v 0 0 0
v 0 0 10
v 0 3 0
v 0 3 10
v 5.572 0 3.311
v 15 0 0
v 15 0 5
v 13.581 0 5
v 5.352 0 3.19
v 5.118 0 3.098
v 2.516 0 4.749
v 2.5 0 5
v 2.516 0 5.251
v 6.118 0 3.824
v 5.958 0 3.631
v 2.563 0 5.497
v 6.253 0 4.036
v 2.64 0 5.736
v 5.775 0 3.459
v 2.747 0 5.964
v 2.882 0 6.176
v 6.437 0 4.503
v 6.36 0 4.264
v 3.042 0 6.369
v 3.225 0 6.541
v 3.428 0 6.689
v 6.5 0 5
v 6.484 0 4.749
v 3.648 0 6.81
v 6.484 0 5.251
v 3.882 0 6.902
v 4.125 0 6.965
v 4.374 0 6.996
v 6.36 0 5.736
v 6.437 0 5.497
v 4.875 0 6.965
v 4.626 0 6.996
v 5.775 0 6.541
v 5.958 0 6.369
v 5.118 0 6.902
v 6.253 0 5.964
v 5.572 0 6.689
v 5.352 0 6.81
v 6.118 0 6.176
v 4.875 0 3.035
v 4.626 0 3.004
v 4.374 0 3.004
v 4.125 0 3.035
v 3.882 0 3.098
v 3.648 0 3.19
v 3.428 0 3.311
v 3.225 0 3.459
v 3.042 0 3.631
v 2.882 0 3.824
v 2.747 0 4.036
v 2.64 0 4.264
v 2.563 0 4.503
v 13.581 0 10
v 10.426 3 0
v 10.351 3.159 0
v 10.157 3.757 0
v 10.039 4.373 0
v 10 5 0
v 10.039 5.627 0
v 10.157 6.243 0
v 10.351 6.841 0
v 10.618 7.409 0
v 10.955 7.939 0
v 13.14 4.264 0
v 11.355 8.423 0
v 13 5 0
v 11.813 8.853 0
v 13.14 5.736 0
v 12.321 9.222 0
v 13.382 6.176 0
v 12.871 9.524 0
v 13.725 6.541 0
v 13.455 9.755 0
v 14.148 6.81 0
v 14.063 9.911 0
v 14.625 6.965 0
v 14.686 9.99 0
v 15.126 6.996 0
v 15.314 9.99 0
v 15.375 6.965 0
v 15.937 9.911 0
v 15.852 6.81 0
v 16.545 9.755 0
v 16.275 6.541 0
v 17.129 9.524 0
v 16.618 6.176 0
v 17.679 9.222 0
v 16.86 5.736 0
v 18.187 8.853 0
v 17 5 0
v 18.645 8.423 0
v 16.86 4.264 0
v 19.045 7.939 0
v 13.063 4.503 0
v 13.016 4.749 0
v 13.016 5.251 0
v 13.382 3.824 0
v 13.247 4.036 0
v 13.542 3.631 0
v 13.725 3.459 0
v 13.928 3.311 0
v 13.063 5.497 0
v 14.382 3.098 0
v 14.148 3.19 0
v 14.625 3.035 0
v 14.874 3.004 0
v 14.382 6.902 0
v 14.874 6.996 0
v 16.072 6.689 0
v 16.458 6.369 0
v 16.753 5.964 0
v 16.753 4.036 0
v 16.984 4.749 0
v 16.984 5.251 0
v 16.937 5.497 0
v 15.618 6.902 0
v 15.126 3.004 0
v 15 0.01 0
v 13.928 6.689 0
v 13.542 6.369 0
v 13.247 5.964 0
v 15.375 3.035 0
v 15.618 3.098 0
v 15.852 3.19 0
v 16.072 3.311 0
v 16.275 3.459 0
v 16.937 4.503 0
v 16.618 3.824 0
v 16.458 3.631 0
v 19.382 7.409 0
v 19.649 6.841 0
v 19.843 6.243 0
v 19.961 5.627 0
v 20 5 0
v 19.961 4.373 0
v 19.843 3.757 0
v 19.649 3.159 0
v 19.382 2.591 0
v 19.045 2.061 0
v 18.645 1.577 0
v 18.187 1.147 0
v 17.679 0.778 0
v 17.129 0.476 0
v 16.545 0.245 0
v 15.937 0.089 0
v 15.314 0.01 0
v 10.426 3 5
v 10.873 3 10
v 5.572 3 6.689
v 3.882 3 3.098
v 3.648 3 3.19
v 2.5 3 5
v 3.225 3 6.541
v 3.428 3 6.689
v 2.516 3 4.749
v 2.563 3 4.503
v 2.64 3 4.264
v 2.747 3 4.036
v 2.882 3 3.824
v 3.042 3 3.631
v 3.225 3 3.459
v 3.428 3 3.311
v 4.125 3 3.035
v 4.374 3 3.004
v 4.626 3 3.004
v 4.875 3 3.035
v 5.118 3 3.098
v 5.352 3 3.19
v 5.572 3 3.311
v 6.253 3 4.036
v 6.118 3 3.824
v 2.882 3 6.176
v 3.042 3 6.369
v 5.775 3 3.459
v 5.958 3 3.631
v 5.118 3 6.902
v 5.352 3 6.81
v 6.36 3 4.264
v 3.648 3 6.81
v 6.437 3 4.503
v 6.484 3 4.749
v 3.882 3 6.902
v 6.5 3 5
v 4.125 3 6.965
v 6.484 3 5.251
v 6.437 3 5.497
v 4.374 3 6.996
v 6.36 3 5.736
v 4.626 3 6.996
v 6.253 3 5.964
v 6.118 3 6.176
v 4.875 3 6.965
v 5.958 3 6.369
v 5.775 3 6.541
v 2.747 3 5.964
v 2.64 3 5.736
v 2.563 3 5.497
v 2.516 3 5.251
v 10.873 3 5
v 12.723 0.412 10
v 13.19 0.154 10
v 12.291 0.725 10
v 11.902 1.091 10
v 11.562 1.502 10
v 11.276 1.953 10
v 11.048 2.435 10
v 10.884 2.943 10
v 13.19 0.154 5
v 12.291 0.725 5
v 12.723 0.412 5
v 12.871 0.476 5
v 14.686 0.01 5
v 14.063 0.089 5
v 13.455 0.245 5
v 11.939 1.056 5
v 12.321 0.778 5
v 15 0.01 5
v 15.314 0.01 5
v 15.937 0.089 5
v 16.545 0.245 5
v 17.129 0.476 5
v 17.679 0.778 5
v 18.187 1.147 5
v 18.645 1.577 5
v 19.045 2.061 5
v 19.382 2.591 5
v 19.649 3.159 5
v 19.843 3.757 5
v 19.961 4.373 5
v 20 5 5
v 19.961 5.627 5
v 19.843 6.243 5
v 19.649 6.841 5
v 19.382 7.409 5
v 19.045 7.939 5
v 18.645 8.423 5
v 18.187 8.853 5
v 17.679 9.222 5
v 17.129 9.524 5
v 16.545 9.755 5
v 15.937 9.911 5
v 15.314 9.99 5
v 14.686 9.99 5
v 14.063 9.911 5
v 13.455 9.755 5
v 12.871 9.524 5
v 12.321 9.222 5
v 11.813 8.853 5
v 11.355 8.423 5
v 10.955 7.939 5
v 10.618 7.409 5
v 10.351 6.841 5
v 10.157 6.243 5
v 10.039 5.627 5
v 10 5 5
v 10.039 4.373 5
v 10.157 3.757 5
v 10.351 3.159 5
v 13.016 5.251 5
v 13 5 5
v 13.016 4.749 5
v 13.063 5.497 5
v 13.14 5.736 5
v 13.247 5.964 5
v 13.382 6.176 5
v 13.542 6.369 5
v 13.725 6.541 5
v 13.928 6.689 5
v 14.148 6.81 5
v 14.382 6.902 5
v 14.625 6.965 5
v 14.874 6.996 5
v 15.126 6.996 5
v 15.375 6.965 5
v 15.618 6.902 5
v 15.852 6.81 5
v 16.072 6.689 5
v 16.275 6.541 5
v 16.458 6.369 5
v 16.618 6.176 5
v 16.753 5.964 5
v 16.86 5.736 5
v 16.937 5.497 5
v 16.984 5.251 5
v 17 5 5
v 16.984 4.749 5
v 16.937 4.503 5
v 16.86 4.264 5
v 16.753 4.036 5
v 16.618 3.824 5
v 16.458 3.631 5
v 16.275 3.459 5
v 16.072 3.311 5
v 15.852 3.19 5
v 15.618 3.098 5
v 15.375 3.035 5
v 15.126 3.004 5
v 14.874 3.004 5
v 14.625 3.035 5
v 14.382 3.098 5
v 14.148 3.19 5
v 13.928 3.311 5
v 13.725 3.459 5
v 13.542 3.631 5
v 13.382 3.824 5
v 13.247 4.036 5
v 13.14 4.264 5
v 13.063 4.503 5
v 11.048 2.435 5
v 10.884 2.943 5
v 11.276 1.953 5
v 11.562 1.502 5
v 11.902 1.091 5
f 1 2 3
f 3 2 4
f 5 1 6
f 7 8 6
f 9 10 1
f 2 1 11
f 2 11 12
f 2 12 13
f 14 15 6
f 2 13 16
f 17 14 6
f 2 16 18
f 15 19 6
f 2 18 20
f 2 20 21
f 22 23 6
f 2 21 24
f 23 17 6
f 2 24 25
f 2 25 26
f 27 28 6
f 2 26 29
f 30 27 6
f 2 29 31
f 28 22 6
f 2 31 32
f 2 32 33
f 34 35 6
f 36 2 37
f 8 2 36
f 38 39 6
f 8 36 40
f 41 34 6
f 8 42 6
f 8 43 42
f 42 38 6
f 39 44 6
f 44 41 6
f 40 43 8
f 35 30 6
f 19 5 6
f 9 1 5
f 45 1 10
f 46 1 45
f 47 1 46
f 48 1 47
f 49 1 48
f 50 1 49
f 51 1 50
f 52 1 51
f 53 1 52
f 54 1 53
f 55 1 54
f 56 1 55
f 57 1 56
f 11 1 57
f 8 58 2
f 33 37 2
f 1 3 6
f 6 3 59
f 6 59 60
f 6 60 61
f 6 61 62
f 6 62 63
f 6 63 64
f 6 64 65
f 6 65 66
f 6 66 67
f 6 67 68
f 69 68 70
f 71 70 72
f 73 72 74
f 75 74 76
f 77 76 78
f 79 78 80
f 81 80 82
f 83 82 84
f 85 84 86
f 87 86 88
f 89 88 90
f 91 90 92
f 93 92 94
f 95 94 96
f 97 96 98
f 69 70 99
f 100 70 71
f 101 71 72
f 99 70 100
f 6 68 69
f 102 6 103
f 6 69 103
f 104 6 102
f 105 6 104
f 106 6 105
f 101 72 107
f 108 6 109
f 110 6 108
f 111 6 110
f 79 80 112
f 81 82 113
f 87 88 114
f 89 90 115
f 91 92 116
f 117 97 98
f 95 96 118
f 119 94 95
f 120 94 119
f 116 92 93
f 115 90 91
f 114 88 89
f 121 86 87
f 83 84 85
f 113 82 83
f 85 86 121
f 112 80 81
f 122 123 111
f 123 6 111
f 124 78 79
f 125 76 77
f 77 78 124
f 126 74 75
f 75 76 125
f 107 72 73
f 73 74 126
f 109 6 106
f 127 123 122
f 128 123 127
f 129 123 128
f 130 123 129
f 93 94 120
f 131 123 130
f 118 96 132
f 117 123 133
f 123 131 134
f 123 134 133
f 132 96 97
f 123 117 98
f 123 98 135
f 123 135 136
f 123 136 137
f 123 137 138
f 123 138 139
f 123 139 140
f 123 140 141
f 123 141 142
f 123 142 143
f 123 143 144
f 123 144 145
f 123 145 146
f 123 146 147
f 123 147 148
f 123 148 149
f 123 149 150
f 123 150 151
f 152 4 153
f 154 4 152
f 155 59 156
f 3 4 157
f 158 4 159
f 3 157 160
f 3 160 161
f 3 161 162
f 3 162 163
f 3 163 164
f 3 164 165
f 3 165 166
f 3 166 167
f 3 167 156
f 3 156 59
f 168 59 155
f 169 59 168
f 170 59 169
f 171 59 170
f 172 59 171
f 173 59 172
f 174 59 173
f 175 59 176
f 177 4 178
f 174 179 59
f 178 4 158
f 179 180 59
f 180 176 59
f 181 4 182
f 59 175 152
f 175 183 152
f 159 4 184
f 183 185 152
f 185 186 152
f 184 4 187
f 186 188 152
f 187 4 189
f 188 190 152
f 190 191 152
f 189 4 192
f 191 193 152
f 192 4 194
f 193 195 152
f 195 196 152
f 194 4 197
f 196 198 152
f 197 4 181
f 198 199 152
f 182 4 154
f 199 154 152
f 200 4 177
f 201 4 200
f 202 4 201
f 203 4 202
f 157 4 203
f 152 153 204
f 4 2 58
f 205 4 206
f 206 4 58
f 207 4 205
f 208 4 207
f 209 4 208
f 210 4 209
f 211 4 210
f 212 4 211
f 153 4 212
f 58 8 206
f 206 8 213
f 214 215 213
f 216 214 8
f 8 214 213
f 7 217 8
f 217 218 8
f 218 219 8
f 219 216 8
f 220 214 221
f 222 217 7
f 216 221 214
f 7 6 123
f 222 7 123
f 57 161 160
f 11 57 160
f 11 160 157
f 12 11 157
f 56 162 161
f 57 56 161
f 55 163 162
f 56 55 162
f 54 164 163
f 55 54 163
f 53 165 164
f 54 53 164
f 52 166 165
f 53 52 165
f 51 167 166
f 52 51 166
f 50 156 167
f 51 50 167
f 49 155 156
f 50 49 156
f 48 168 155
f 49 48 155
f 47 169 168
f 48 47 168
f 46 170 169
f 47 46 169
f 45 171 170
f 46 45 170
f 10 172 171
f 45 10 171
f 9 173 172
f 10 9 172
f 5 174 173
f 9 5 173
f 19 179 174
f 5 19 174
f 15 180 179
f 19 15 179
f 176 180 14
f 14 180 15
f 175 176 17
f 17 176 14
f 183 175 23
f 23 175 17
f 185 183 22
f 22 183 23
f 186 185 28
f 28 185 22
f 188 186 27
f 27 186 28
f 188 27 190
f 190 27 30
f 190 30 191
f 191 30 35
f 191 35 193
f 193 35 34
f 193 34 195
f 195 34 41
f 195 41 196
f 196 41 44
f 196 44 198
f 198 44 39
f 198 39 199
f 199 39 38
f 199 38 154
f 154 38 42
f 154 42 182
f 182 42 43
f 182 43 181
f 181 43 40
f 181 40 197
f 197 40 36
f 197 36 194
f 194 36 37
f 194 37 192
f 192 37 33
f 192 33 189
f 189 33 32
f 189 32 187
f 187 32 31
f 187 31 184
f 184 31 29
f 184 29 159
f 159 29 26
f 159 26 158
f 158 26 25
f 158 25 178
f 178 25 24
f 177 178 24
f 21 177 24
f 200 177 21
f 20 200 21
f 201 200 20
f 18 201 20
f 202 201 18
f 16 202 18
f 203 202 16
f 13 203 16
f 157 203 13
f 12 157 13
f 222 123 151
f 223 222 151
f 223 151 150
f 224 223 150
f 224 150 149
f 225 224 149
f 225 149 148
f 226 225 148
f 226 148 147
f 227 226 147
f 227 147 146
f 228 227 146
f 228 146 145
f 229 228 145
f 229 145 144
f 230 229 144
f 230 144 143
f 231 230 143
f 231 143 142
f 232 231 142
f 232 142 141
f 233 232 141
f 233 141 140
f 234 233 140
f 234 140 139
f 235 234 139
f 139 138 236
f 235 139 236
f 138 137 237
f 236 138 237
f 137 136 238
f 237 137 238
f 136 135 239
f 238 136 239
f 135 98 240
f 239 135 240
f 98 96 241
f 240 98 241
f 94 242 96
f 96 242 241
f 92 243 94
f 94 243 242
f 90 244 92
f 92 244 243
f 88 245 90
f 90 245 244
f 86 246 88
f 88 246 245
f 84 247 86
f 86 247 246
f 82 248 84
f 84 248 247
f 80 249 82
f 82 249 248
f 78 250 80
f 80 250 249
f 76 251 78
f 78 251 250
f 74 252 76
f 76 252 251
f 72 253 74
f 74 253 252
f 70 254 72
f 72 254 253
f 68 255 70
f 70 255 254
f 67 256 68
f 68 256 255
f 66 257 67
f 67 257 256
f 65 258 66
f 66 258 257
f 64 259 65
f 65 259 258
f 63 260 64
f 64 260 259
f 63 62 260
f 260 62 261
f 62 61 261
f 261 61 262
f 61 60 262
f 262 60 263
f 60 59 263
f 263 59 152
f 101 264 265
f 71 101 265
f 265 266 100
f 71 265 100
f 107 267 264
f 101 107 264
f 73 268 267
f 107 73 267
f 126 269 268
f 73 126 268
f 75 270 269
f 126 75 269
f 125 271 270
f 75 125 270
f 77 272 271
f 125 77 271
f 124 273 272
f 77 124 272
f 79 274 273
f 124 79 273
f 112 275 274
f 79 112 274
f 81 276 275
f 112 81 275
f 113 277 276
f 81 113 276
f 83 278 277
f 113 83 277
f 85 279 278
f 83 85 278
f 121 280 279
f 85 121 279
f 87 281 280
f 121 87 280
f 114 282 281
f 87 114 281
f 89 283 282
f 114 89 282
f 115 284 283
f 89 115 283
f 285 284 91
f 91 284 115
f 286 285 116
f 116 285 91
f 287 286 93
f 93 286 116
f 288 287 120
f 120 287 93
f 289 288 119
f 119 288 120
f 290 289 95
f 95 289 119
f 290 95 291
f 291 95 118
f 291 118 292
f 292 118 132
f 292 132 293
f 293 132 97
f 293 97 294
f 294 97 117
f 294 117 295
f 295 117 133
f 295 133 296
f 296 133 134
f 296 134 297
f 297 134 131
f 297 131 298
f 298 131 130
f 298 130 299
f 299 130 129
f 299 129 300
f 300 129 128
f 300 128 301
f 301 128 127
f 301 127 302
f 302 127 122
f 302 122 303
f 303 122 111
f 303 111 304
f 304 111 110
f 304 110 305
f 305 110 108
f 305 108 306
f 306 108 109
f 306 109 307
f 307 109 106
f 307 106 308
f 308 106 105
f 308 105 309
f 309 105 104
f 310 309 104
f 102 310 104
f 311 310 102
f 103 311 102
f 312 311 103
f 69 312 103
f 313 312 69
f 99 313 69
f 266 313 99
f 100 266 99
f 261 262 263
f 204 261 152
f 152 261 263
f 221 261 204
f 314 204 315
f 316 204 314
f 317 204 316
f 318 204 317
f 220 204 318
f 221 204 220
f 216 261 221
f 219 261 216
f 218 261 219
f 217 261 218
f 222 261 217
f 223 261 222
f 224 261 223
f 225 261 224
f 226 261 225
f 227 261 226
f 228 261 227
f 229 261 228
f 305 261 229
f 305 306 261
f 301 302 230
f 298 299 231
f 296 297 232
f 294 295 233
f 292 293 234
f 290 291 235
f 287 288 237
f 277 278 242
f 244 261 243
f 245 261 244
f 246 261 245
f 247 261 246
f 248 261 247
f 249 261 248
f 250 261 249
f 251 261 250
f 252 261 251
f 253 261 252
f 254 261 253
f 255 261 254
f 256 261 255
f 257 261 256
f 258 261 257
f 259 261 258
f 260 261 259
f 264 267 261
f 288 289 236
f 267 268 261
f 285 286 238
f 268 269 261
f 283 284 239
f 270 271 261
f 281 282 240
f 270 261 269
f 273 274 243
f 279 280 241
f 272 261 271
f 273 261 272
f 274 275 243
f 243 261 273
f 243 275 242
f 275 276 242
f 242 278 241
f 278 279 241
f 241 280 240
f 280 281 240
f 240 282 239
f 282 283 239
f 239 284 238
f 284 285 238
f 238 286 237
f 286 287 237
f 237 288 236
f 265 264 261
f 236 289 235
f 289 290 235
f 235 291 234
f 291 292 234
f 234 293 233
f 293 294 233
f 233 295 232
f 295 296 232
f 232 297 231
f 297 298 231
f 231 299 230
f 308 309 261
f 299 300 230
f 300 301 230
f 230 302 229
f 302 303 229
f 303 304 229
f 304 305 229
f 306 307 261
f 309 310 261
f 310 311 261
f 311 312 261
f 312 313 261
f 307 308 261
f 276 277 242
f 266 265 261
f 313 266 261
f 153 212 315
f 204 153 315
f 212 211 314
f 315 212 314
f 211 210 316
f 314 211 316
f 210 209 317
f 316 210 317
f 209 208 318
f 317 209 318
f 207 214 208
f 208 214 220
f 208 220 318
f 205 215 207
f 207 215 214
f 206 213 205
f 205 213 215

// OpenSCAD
trou_m3=2;
dim1=10;
dim2=15;
ep=3;

module support_fan_x2(){
	union(){
	difference(){
		cube([dim2,ep,dim1]);
		translate([dim2/2-3,-5,dim1/2]){rotate([-90,0,0])cylinder(h=20, r=trou_m3, $fn=50);}
		translate([dim2+trou_m3-2,4,dim1/2]){cylinder(h=dim1/2+0.25, r=trou_m3+2+0.25, $fn=50);}
	}
	difference(){
		translate([dim2+trou_m3-2,5,0]){cylinder(h=dim1/2, r=trou_m3+3, $fn=50);}
		translate([dim2+trou_m3-2,5,-2]){cylinder(h=dim1, r=trou_m3, $fn=50);}
		
	}
	}

}
support_fan_x2();
